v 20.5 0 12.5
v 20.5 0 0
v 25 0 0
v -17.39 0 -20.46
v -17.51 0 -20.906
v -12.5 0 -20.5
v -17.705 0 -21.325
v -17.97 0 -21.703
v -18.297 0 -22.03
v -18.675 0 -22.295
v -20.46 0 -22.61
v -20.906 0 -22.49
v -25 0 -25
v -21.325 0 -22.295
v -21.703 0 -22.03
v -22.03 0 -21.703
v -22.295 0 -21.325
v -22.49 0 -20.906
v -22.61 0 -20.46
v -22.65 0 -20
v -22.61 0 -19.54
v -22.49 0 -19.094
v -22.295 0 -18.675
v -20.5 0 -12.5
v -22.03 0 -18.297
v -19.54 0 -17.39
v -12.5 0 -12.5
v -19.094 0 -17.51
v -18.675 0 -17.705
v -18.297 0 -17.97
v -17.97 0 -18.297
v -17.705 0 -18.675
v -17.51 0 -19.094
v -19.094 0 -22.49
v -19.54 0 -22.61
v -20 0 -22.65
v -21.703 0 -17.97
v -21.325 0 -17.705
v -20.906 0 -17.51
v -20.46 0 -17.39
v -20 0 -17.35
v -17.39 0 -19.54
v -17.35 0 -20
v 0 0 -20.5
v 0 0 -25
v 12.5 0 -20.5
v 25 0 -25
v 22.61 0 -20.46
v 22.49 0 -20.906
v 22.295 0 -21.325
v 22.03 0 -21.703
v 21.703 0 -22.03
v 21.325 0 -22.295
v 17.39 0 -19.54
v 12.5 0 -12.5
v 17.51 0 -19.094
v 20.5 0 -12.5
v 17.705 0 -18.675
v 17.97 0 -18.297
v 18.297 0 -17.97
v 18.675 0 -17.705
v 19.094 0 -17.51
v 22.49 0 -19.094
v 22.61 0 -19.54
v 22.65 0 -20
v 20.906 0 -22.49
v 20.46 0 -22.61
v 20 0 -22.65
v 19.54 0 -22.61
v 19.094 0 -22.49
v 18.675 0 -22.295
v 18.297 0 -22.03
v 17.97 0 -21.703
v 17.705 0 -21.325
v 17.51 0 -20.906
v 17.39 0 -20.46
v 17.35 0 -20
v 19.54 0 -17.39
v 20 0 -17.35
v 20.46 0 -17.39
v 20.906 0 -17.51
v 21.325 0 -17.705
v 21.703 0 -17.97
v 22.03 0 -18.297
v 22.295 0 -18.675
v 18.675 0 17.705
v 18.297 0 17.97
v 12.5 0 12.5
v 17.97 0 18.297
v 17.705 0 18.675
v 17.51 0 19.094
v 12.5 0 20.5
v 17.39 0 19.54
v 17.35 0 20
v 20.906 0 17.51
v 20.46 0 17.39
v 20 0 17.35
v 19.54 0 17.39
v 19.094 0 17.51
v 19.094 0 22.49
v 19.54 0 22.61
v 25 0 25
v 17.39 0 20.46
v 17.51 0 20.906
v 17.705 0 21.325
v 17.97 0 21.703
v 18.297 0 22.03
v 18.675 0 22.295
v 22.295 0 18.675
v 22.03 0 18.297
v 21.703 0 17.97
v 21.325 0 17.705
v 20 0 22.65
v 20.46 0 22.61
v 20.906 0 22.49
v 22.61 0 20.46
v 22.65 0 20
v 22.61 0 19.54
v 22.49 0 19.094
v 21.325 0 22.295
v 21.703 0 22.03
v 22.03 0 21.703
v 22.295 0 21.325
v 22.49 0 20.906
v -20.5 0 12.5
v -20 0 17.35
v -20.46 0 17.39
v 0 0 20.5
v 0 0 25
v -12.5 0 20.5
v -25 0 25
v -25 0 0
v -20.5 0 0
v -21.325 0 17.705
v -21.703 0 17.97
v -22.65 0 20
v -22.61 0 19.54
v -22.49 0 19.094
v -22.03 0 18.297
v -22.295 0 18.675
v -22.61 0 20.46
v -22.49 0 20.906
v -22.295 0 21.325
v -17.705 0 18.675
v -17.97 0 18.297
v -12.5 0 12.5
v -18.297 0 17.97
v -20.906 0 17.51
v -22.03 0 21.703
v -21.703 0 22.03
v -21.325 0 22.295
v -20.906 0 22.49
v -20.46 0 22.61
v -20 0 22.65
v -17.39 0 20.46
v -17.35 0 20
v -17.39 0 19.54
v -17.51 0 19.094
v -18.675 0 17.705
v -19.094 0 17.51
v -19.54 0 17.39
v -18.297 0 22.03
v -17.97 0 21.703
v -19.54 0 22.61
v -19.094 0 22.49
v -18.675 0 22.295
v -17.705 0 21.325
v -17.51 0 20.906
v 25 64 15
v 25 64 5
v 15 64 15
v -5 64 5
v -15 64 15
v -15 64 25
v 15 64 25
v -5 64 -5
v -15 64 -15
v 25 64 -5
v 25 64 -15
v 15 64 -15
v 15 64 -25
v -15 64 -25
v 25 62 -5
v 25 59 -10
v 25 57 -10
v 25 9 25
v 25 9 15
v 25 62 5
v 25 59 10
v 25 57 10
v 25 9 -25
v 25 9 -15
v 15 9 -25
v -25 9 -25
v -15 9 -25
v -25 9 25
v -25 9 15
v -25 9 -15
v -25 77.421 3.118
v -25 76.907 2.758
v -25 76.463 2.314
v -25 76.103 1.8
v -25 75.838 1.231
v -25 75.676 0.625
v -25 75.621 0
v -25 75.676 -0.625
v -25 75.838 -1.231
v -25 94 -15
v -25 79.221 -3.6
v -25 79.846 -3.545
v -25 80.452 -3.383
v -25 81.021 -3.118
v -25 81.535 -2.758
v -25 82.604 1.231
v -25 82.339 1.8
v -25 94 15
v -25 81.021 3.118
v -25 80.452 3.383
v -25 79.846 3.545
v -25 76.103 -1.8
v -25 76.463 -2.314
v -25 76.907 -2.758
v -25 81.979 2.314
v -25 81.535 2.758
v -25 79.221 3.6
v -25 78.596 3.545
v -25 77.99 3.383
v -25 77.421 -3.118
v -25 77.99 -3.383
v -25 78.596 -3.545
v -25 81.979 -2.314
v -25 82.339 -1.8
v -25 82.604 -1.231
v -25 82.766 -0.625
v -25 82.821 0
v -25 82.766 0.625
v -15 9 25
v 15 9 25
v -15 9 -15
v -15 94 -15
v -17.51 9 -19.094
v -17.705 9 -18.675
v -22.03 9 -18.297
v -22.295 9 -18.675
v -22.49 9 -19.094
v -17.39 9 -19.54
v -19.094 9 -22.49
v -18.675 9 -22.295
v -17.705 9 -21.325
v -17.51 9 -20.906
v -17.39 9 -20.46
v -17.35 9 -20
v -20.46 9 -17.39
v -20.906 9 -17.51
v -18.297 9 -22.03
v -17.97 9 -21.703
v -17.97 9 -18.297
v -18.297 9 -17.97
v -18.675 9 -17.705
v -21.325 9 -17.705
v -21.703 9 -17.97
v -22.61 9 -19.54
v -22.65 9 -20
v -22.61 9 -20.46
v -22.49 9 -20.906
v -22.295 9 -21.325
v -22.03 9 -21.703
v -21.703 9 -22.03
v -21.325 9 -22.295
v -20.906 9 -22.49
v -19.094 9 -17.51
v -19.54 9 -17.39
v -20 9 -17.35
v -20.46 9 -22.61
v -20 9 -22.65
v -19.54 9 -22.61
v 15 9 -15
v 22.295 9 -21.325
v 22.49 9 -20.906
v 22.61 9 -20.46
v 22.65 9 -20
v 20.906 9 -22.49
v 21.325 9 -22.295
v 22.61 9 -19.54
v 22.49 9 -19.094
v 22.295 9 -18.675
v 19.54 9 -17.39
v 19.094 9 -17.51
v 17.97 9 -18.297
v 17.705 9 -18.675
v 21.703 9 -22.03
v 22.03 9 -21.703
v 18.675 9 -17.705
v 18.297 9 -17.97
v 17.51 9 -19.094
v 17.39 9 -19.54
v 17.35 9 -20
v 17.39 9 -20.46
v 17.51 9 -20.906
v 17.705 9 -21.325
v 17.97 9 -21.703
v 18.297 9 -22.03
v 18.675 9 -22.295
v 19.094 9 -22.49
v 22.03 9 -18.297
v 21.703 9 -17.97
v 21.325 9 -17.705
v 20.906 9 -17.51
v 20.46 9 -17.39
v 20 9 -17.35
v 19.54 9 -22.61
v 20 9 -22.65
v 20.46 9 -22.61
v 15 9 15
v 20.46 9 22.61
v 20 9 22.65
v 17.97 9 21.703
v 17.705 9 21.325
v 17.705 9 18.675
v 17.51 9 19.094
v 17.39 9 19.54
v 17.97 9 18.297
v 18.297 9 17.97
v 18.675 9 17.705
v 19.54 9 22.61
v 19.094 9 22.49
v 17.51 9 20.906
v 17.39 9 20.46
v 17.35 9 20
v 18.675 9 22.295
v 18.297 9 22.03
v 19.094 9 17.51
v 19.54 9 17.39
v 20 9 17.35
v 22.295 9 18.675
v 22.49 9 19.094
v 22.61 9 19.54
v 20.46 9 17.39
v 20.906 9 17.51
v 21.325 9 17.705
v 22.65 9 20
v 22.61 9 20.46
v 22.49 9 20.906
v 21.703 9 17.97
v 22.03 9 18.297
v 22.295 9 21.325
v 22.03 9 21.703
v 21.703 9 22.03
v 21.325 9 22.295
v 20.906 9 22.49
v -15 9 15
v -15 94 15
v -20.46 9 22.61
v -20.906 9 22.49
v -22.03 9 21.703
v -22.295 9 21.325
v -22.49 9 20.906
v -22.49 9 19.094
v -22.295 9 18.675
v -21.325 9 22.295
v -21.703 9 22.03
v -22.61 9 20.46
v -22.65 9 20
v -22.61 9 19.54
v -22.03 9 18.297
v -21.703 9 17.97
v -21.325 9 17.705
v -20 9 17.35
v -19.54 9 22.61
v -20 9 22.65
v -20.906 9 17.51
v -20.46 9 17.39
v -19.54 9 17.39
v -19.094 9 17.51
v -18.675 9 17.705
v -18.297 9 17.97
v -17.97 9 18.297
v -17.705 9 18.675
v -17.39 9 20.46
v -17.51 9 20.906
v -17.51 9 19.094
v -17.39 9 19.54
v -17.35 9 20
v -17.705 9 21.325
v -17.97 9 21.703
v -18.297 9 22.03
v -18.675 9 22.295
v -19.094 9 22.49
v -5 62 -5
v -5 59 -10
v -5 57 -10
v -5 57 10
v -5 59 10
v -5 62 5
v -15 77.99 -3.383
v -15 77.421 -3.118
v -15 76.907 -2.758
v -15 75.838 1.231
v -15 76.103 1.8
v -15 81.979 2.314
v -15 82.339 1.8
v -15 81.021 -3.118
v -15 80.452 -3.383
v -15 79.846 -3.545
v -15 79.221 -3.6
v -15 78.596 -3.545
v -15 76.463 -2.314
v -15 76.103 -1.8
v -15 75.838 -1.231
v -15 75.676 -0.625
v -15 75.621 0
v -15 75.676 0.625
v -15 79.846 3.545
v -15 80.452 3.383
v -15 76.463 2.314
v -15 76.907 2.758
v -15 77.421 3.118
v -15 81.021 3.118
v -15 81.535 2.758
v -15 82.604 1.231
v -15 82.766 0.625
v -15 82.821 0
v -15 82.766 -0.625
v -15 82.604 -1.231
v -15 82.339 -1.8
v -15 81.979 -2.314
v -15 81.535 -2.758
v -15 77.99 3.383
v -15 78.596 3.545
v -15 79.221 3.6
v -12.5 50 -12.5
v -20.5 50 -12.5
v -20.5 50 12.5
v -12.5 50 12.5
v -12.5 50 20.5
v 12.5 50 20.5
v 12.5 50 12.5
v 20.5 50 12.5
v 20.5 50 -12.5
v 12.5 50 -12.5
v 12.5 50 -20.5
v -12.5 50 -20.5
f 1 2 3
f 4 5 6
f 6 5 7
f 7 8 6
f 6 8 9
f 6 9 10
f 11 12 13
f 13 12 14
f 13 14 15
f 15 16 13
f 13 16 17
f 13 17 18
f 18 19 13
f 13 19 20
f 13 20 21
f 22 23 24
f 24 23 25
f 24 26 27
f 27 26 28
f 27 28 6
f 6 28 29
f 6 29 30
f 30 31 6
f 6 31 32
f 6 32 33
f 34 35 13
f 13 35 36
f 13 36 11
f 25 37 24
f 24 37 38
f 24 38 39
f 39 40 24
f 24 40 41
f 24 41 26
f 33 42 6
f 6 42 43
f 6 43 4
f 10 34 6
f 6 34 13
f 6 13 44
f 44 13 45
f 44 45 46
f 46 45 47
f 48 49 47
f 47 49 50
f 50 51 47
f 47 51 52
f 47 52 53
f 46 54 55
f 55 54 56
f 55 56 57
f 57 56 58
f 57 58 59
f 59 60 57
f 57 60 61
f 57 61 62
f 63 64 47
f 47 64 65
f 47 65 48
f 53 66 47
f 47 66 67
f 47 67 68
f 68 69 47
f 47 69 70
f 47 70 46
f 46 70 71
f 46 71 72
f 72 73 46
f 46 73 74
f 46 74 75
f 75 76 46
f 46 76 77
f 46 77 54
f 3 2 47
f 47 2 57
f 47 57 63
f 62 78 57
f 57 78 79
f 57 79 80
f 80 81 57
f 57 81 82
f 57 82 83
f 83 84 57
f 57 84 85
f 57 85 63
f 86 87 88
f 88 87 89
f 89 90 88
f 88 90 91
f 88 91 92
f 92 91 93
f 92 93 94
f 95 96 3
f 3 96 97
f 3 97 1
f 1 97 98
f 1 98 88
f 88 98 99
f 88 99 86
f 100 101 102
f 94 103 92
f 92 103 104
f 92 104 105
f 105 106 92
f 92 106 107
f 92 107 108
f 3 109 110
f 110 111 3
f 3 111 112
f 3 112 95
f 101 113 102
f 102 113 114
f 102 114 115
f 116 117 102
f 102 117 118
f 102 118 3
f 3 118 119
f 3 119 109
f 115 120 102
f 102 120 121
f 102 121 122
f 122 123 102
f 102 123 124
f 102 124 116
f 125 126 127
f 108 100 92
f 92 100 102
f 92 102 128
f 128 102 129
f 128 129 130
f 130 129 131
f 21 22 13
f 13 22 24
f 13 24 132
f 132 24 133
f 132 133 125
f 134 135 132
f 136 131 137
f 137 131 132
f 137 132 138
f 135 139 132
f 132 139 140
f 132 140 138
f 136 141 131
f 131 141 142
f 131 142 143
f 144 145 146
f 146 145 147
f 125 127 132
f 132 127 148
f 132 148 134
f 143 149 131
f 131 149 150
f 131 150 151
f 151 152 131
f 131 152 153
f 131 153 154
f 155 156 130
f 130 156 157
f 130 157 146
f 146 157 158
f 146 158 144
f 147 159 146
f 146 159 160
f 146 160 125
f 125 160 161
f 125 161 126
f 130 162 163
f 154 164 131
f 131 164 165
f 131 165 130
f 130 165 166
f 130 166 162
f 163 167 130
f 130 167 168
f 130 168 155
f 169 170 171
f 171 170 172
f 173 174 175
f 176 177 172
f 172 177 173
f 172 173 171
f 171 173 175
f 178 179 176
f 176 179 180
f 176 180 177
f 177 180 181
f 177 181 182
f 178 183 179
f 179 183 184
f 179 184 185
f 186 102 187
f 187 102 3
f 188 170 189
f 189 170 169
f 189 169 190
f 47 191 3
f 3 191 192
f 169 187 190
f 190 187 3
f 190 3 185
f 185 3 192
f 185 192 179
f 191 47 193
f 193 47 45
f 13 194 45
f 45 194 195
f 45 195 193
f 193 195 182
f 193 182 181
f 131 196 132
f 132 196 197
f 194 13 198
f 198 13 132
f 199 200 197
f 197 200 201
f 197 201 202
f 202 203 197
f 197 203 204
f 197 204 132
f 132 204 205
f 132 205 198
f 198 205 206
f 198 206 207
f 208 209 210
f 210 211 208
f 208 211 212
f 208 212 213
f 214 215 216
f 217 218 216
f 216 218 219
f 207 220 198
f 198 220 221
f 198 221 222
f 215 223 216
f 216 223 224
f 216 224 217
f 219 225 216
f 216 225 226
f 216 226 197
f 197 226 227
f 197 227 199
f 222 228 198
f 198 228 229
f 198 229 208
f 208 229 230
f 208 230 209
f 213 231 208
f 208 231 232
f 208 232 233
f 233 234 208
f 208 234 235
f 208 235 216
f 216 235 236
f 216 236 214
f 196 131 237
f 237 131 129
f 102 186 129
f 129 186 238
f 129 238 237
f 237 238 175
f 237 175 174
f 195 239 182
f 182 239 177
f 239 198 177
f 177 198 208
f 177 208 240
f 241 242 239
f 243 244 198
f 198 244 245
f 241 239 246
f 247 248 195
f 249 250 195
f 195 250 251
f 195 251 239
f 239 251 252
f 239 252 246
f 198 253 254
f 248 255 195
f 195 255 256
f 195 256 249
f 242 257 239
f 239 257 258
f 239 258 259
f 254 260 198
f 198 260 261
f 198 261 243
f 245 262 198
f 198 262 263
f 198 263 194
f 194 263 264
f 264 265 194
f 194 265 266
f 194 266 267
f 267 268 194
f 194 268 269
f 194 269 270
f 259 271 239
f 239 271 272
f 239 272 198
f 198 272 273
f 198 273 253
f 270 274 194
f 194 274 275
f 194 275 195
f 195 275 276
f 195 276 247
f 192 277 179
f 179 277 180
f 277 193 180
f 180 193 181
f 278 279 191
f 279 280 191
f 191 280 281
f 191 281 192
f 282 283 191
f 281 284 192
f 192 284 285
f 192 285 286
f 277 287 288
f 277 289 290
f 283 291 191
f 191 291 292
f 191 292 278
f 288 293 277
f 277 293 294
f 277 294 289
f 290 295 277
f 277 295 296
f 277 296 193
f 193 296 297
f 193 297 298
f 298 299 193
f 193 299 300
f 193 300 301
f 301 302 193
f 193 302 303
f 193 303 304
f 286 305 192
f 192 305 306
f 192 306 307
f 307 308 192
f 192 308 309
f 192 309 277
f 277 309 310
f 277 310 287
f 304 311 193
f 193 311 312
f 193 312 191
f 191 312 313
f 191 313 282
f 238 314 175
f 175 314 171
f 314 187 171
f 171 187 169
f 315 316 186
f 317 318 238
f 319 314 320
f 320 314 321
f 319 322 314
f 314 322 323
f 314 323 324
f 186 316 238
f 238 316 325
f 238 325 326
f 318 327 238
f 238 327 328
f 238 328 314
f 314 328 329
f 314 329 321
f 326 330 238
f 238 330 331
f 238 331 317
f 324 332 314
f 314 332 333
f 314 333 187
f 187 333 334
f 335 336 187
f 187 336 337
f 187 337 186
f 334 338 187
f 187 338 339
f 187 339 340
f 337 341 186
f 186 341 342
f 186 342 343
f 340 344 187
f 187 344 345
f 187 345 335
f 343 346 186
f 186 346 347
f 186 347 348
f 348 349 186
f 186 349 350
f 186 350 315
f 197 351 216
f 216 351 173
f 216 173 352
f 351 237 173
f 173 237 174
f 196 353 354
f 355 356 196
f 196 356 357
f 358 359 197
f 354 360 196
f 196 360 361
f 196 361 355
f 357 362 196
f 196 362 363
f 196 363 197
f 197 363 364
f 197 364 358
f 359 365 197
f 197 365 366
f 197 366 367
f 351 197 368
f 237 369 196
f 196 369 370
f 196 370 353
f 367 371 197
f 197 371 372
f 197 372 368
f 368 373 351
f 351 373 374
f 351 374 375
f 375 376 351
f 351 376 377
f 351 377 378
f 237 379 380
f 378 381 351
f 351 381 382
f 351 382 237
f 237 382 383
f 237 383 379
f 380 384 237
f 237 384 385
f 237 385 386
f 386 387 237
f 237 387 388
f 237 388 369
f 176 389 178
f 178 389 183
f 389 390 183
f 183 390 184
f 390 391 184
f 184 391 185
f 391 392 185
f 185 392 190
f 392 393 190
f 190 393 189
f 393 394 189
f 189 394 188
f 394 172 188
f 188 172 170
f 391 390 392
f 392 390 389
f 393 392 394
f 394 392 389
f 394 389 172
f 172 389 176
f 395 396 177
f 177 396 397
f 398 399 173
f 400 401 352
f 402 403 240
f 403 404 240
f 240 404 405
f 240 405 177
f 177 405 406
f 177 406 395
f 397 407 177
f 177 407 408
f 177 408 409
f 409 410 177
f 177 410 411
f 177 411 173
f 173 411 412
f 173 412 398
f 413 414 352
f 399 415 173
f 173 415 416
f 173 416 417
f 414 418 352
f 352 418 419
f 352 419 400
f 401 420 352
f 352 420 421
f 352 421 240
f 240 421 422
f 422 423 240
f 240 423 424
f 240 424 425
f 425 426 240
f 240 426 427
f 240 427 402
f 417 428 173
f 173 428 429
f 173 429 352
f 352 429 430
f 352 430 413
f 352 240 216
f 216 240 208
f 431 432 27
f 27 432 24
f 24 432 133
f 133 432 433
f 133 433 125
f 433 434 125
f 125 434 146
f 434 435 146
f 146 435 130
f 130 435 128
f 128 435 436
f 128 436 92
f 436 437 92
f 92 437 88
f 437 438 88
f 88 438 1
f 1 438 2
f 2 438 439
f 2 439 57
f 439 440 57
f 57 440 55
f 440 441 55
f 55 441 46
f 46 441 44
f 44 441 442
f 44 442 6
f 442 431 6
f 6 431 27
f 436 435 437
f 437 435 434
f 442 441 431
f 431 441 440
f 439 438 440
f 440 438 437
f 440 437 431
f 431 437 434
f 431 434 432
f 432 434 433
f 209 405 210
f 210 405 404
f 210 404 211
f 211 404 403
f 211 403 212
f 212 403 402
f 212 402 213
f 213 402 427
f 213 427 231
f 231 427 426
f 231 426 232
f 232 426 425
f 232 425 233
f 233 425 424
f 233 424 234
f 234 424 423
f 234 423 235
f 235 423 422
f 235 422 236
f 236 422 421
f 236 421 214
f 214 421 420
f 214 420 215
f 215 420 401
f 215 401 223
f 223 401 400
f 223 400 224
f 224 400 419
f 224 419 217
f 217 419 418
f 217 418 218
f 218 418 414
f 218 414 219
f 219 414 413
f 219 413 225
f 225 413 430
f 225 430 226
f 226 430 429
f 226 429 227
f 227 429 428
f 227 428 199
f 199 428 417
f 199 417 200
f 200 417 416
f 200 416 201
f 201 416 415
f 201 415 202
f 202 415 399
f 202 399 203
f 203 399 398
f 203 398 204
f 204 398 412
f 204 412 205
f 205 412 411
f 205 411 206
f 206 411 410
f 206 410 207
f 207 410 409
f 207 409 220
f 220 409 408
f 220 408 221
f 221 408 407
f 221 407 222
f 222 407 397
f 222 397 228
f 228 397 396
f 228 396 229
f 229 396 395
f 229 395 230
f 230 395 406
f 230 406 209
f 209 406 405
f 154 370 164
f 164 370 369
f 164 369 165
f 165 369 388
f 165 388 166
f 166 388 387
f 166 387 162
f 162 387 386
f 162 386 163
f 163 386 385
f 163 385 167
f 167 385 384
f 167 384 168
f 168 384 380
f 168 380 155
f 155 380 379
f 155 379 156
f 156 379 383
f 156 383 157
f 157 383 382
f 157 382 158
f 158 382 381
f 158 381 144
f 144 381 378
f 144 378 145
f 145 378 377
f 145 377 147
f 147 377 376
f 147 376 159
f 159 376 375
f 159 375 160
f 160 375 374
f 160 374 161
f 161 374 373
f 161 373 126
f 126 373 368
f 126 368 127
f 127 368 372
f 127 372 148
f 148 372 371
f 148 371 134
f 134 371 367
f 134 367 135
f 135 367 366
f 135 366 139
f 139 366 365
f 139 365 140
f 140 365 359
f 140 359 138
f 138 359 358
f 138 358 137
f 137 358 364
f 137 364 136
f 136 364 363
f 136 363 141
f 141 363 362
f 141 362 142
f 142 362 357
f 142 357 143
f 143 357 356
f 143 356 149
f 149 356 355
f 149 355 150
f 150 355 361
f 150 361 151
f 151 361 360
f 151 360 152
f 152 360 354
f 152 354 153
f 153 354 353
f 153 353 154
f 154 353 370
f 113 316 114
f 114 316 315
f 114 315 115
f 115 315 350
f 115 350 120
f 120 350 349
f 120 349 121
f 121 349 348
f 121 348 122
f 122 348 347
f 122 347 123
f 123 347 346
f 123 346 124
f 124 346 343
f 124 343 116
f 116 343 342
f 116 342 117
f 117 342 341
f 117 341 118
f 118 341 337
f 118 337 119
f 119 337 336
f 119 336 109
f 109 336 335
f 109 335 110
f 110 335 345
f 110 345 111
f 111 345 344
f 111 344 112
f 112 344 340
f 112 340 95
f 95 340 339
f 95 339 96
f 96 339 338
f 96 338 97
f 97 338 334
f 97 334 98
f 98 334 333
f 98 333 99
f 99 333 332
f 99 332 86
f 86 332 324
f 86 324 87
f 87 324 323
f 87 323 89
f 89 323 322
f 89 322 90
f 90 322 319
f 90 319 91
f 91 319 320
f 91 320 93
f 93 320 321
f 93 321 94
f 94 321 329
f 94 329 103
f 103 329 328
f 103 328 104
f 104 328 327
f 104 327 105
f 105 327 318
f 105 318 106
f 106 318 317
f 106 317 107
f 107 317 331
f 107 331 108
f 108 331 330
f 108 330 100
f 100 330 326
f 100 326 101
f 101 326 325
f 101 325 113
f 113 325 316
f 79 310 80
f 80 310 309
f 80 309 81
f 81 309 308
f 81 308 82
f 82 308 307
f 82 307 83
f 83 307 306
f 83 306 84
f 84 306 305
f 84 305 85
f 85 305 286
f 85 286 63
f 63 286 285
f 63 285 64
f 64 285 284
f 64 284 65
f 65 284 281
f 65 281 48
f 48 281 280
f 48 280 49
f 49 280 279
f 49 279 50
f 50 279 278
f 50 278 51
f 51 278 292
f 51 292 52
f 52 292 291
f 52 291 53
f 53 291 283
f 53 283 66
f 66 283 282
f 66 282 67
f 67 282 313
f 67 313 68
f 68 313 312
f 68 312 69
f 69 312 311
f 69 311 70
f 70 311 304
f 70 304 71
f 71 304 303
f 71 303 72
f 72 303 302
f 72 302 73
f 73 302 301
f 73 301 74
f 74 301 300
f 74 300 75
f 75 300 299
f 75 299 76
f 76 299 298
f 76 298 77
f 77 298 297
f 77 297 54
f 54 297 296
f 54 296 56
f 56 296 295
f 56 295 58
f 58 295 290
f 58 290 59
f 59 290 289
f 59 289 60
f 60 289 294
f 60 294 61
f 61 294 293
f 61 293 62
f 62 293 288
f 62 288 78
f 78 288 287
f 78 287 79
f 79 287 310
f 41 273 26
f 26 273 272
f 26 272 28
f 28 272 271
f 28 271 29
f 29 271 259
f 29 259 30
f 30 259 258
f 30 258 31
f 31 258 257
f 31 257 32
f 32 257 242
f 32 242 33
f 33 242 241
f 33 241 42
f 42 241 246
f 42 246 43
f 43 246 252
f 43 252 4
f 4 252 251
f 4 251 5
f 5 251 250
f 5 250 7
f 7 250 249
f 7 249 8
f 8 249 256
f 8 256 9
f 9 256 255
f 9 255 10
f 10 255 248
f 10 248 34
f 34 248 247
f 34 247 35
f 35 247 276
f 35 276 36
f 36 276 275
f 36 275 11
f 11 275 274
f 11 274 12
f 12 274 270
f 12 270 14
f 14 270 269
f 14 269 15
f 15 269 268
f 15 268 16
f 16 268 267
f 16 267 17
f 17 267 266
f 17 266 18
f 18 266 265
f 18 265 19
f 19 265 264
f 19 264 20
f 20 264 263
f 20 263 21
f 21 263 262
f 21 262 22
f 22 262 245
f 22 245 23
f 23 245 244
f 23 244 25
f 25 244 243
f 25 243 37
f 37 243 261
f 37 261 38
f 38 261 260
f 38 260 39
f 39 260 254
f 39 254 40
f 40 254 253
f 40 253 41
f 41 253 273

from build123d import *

# Parameters (mm, degrees)
SKETCH1_W           = 50
SKETCH1_H           = 50
BOSS_EXTRUDE1_DEPTH = 64
SKETCH2_W           = 10
SKETCH2_H           = 10
CUT_EXTRUDE1_DEPTH  = 55
CUT_EXTRUDE2_DEPTH  = 30
SKETCH4_W           = 10
SKETCH4_H           = 30
BOSS_EXTRUDE2_DEPTH = 30
SKETCH6_W           = 8
SKETCH6_H           = 25
SKETCH6_W_2         = 25
SKETCH6_H_2         = 8
CUT_EXTRUDE4_DEPTH  = 50
SKETCH7_R           = 3.6
CUT_EXTRUDE5_DEPTH  = 50
SKETCH8_R           = 2.65
CUT_EXTRUDE6_DEPTH  = 50


with BuildPart() as part:
    # Sketch1 → Boss-Extrude1 (new body)
    with BuildSketch(Plane(origin=(0, 0, 0), x_dir=(1, 0, 0), z_dir=(0, 1, 0))):
        Rectangle(SKETCH1_W, SKETCH1_H)
    extrude(amount=BOSS_EXTRUDE1_DEPTH)

    # Sketch2 → Cut-Extrude1 (cut)
    with BuildSketch(Plane(origin=(0, 64, 0), x_dir=(1, 0, 0), z_dir=(0, 1, 0))):
        with Locations((20, 20)):
            Rectangle(SKETCH2_W, SKETCH2_H)
        with Locations((-20, 20)):
            Rectangle(SKETCH2_W, SKETCH2_H)
        with Locations((20, -20)):
            Rectangle(SKETCH2_W, SKETCH2_H)
        with Locations((-20, -20)):
            Rectangle(SKETCH2_W, SKETCH2_H)
    extrude(amount=-CUT_EXTRUDE1_DEPTH, mode=Mode.SUBTRACT)

    # Sketch3 → Cut-Extrude2 (cut)
    with BuildSketch(Plane(origin=(25, 0, 0), x_dir=(0, 0, -1), z_dir=(1, 0, 0))):
        Polygon((-5, 64), (5, 64), (5, 62), (10, 59), (10, 57), (-10, 57), (-10, 59), (-5, 62), align=None)
    extrude(amount=-CUT_EXTRUDE2_DEPTH, mode=Mode.SUBTRACT)

    # Sketch4 → Boss-Extrude2 (add)
    with BuildSketch(Plane(origin=(0, 64, 0), x_dir=(1, 0, 0), z_dir=(0, 1, 0))):
        with Locations((-20, 0)):
            Rectangle(SKETCH4_W, SKETCH4_H)
    extrude(amount=BOSS_EXTRUDE2_DEPTH)

    # Sketch6 → Cut-Extrude4 (cut)
    with BuildSketch(Plane.XZ):
        with Locations((-16.5, 0)):
            Rectangle(SKETCH6_W, SKETCH6_H)
        with Locations((0, 16.5)):
            Rectangle(SKETCH6_W_2, SKETCH6_H_2)
        Rectangle(SKETCH6_W_2, SKETCH6_H)
        with Locations((16.5, 0)):
            Rectangle(SKETCH6_W, SKETCH6_H)
        with Locations((0, -16.5)):
            Rectangle(SKETCH6_W_2, SKETCH6_H_2)
    extrude(amount=-CUT_EXTRUDE4_DEPTH, mode=Mode.SUBTRACT)

    # Sketch7 → Cut-Extrude5 (cut)
    with BuildSketch(Plane(origin=(-15, 0, 0), x_dir=(0, 0, -1), z_dir=(1, 0, 0))):
        with Locations((0, 79.221173682)):
            Circle(SKETCH7_R)
    extrude(amount=-CUT_EXTRUDE5_DEPTH, mode=Mode.SUBTRACT)

    # Sketch8 → Cut-Extrude6 (cut)
    with BuildSketch(Plane(origin=(0, 9, 0), x_dir=(1, 0, 0), z_dir=(0, 1, 0))):
        with Locations(Location((20, -20, 0), (0, 0, 270))):
            Circle(SKETCH8_R)
        with Locations(Location((-20, -20, 0), (0, 0, 270))):
            Circle(SKETCH8_R)
        with Locations(Location((-20, 20, 0), (0, 0, 270))):
            Circle(SKETCH8_R)
        with Locations(Location((20, 20, 0), (0, 0, 270))):
            Circle(SKETCH8_R)
    extrude(amount=-CUT_EXTRUDE6_DEPTH, mode=Mode.SUBTRACT)


solid = part.part
